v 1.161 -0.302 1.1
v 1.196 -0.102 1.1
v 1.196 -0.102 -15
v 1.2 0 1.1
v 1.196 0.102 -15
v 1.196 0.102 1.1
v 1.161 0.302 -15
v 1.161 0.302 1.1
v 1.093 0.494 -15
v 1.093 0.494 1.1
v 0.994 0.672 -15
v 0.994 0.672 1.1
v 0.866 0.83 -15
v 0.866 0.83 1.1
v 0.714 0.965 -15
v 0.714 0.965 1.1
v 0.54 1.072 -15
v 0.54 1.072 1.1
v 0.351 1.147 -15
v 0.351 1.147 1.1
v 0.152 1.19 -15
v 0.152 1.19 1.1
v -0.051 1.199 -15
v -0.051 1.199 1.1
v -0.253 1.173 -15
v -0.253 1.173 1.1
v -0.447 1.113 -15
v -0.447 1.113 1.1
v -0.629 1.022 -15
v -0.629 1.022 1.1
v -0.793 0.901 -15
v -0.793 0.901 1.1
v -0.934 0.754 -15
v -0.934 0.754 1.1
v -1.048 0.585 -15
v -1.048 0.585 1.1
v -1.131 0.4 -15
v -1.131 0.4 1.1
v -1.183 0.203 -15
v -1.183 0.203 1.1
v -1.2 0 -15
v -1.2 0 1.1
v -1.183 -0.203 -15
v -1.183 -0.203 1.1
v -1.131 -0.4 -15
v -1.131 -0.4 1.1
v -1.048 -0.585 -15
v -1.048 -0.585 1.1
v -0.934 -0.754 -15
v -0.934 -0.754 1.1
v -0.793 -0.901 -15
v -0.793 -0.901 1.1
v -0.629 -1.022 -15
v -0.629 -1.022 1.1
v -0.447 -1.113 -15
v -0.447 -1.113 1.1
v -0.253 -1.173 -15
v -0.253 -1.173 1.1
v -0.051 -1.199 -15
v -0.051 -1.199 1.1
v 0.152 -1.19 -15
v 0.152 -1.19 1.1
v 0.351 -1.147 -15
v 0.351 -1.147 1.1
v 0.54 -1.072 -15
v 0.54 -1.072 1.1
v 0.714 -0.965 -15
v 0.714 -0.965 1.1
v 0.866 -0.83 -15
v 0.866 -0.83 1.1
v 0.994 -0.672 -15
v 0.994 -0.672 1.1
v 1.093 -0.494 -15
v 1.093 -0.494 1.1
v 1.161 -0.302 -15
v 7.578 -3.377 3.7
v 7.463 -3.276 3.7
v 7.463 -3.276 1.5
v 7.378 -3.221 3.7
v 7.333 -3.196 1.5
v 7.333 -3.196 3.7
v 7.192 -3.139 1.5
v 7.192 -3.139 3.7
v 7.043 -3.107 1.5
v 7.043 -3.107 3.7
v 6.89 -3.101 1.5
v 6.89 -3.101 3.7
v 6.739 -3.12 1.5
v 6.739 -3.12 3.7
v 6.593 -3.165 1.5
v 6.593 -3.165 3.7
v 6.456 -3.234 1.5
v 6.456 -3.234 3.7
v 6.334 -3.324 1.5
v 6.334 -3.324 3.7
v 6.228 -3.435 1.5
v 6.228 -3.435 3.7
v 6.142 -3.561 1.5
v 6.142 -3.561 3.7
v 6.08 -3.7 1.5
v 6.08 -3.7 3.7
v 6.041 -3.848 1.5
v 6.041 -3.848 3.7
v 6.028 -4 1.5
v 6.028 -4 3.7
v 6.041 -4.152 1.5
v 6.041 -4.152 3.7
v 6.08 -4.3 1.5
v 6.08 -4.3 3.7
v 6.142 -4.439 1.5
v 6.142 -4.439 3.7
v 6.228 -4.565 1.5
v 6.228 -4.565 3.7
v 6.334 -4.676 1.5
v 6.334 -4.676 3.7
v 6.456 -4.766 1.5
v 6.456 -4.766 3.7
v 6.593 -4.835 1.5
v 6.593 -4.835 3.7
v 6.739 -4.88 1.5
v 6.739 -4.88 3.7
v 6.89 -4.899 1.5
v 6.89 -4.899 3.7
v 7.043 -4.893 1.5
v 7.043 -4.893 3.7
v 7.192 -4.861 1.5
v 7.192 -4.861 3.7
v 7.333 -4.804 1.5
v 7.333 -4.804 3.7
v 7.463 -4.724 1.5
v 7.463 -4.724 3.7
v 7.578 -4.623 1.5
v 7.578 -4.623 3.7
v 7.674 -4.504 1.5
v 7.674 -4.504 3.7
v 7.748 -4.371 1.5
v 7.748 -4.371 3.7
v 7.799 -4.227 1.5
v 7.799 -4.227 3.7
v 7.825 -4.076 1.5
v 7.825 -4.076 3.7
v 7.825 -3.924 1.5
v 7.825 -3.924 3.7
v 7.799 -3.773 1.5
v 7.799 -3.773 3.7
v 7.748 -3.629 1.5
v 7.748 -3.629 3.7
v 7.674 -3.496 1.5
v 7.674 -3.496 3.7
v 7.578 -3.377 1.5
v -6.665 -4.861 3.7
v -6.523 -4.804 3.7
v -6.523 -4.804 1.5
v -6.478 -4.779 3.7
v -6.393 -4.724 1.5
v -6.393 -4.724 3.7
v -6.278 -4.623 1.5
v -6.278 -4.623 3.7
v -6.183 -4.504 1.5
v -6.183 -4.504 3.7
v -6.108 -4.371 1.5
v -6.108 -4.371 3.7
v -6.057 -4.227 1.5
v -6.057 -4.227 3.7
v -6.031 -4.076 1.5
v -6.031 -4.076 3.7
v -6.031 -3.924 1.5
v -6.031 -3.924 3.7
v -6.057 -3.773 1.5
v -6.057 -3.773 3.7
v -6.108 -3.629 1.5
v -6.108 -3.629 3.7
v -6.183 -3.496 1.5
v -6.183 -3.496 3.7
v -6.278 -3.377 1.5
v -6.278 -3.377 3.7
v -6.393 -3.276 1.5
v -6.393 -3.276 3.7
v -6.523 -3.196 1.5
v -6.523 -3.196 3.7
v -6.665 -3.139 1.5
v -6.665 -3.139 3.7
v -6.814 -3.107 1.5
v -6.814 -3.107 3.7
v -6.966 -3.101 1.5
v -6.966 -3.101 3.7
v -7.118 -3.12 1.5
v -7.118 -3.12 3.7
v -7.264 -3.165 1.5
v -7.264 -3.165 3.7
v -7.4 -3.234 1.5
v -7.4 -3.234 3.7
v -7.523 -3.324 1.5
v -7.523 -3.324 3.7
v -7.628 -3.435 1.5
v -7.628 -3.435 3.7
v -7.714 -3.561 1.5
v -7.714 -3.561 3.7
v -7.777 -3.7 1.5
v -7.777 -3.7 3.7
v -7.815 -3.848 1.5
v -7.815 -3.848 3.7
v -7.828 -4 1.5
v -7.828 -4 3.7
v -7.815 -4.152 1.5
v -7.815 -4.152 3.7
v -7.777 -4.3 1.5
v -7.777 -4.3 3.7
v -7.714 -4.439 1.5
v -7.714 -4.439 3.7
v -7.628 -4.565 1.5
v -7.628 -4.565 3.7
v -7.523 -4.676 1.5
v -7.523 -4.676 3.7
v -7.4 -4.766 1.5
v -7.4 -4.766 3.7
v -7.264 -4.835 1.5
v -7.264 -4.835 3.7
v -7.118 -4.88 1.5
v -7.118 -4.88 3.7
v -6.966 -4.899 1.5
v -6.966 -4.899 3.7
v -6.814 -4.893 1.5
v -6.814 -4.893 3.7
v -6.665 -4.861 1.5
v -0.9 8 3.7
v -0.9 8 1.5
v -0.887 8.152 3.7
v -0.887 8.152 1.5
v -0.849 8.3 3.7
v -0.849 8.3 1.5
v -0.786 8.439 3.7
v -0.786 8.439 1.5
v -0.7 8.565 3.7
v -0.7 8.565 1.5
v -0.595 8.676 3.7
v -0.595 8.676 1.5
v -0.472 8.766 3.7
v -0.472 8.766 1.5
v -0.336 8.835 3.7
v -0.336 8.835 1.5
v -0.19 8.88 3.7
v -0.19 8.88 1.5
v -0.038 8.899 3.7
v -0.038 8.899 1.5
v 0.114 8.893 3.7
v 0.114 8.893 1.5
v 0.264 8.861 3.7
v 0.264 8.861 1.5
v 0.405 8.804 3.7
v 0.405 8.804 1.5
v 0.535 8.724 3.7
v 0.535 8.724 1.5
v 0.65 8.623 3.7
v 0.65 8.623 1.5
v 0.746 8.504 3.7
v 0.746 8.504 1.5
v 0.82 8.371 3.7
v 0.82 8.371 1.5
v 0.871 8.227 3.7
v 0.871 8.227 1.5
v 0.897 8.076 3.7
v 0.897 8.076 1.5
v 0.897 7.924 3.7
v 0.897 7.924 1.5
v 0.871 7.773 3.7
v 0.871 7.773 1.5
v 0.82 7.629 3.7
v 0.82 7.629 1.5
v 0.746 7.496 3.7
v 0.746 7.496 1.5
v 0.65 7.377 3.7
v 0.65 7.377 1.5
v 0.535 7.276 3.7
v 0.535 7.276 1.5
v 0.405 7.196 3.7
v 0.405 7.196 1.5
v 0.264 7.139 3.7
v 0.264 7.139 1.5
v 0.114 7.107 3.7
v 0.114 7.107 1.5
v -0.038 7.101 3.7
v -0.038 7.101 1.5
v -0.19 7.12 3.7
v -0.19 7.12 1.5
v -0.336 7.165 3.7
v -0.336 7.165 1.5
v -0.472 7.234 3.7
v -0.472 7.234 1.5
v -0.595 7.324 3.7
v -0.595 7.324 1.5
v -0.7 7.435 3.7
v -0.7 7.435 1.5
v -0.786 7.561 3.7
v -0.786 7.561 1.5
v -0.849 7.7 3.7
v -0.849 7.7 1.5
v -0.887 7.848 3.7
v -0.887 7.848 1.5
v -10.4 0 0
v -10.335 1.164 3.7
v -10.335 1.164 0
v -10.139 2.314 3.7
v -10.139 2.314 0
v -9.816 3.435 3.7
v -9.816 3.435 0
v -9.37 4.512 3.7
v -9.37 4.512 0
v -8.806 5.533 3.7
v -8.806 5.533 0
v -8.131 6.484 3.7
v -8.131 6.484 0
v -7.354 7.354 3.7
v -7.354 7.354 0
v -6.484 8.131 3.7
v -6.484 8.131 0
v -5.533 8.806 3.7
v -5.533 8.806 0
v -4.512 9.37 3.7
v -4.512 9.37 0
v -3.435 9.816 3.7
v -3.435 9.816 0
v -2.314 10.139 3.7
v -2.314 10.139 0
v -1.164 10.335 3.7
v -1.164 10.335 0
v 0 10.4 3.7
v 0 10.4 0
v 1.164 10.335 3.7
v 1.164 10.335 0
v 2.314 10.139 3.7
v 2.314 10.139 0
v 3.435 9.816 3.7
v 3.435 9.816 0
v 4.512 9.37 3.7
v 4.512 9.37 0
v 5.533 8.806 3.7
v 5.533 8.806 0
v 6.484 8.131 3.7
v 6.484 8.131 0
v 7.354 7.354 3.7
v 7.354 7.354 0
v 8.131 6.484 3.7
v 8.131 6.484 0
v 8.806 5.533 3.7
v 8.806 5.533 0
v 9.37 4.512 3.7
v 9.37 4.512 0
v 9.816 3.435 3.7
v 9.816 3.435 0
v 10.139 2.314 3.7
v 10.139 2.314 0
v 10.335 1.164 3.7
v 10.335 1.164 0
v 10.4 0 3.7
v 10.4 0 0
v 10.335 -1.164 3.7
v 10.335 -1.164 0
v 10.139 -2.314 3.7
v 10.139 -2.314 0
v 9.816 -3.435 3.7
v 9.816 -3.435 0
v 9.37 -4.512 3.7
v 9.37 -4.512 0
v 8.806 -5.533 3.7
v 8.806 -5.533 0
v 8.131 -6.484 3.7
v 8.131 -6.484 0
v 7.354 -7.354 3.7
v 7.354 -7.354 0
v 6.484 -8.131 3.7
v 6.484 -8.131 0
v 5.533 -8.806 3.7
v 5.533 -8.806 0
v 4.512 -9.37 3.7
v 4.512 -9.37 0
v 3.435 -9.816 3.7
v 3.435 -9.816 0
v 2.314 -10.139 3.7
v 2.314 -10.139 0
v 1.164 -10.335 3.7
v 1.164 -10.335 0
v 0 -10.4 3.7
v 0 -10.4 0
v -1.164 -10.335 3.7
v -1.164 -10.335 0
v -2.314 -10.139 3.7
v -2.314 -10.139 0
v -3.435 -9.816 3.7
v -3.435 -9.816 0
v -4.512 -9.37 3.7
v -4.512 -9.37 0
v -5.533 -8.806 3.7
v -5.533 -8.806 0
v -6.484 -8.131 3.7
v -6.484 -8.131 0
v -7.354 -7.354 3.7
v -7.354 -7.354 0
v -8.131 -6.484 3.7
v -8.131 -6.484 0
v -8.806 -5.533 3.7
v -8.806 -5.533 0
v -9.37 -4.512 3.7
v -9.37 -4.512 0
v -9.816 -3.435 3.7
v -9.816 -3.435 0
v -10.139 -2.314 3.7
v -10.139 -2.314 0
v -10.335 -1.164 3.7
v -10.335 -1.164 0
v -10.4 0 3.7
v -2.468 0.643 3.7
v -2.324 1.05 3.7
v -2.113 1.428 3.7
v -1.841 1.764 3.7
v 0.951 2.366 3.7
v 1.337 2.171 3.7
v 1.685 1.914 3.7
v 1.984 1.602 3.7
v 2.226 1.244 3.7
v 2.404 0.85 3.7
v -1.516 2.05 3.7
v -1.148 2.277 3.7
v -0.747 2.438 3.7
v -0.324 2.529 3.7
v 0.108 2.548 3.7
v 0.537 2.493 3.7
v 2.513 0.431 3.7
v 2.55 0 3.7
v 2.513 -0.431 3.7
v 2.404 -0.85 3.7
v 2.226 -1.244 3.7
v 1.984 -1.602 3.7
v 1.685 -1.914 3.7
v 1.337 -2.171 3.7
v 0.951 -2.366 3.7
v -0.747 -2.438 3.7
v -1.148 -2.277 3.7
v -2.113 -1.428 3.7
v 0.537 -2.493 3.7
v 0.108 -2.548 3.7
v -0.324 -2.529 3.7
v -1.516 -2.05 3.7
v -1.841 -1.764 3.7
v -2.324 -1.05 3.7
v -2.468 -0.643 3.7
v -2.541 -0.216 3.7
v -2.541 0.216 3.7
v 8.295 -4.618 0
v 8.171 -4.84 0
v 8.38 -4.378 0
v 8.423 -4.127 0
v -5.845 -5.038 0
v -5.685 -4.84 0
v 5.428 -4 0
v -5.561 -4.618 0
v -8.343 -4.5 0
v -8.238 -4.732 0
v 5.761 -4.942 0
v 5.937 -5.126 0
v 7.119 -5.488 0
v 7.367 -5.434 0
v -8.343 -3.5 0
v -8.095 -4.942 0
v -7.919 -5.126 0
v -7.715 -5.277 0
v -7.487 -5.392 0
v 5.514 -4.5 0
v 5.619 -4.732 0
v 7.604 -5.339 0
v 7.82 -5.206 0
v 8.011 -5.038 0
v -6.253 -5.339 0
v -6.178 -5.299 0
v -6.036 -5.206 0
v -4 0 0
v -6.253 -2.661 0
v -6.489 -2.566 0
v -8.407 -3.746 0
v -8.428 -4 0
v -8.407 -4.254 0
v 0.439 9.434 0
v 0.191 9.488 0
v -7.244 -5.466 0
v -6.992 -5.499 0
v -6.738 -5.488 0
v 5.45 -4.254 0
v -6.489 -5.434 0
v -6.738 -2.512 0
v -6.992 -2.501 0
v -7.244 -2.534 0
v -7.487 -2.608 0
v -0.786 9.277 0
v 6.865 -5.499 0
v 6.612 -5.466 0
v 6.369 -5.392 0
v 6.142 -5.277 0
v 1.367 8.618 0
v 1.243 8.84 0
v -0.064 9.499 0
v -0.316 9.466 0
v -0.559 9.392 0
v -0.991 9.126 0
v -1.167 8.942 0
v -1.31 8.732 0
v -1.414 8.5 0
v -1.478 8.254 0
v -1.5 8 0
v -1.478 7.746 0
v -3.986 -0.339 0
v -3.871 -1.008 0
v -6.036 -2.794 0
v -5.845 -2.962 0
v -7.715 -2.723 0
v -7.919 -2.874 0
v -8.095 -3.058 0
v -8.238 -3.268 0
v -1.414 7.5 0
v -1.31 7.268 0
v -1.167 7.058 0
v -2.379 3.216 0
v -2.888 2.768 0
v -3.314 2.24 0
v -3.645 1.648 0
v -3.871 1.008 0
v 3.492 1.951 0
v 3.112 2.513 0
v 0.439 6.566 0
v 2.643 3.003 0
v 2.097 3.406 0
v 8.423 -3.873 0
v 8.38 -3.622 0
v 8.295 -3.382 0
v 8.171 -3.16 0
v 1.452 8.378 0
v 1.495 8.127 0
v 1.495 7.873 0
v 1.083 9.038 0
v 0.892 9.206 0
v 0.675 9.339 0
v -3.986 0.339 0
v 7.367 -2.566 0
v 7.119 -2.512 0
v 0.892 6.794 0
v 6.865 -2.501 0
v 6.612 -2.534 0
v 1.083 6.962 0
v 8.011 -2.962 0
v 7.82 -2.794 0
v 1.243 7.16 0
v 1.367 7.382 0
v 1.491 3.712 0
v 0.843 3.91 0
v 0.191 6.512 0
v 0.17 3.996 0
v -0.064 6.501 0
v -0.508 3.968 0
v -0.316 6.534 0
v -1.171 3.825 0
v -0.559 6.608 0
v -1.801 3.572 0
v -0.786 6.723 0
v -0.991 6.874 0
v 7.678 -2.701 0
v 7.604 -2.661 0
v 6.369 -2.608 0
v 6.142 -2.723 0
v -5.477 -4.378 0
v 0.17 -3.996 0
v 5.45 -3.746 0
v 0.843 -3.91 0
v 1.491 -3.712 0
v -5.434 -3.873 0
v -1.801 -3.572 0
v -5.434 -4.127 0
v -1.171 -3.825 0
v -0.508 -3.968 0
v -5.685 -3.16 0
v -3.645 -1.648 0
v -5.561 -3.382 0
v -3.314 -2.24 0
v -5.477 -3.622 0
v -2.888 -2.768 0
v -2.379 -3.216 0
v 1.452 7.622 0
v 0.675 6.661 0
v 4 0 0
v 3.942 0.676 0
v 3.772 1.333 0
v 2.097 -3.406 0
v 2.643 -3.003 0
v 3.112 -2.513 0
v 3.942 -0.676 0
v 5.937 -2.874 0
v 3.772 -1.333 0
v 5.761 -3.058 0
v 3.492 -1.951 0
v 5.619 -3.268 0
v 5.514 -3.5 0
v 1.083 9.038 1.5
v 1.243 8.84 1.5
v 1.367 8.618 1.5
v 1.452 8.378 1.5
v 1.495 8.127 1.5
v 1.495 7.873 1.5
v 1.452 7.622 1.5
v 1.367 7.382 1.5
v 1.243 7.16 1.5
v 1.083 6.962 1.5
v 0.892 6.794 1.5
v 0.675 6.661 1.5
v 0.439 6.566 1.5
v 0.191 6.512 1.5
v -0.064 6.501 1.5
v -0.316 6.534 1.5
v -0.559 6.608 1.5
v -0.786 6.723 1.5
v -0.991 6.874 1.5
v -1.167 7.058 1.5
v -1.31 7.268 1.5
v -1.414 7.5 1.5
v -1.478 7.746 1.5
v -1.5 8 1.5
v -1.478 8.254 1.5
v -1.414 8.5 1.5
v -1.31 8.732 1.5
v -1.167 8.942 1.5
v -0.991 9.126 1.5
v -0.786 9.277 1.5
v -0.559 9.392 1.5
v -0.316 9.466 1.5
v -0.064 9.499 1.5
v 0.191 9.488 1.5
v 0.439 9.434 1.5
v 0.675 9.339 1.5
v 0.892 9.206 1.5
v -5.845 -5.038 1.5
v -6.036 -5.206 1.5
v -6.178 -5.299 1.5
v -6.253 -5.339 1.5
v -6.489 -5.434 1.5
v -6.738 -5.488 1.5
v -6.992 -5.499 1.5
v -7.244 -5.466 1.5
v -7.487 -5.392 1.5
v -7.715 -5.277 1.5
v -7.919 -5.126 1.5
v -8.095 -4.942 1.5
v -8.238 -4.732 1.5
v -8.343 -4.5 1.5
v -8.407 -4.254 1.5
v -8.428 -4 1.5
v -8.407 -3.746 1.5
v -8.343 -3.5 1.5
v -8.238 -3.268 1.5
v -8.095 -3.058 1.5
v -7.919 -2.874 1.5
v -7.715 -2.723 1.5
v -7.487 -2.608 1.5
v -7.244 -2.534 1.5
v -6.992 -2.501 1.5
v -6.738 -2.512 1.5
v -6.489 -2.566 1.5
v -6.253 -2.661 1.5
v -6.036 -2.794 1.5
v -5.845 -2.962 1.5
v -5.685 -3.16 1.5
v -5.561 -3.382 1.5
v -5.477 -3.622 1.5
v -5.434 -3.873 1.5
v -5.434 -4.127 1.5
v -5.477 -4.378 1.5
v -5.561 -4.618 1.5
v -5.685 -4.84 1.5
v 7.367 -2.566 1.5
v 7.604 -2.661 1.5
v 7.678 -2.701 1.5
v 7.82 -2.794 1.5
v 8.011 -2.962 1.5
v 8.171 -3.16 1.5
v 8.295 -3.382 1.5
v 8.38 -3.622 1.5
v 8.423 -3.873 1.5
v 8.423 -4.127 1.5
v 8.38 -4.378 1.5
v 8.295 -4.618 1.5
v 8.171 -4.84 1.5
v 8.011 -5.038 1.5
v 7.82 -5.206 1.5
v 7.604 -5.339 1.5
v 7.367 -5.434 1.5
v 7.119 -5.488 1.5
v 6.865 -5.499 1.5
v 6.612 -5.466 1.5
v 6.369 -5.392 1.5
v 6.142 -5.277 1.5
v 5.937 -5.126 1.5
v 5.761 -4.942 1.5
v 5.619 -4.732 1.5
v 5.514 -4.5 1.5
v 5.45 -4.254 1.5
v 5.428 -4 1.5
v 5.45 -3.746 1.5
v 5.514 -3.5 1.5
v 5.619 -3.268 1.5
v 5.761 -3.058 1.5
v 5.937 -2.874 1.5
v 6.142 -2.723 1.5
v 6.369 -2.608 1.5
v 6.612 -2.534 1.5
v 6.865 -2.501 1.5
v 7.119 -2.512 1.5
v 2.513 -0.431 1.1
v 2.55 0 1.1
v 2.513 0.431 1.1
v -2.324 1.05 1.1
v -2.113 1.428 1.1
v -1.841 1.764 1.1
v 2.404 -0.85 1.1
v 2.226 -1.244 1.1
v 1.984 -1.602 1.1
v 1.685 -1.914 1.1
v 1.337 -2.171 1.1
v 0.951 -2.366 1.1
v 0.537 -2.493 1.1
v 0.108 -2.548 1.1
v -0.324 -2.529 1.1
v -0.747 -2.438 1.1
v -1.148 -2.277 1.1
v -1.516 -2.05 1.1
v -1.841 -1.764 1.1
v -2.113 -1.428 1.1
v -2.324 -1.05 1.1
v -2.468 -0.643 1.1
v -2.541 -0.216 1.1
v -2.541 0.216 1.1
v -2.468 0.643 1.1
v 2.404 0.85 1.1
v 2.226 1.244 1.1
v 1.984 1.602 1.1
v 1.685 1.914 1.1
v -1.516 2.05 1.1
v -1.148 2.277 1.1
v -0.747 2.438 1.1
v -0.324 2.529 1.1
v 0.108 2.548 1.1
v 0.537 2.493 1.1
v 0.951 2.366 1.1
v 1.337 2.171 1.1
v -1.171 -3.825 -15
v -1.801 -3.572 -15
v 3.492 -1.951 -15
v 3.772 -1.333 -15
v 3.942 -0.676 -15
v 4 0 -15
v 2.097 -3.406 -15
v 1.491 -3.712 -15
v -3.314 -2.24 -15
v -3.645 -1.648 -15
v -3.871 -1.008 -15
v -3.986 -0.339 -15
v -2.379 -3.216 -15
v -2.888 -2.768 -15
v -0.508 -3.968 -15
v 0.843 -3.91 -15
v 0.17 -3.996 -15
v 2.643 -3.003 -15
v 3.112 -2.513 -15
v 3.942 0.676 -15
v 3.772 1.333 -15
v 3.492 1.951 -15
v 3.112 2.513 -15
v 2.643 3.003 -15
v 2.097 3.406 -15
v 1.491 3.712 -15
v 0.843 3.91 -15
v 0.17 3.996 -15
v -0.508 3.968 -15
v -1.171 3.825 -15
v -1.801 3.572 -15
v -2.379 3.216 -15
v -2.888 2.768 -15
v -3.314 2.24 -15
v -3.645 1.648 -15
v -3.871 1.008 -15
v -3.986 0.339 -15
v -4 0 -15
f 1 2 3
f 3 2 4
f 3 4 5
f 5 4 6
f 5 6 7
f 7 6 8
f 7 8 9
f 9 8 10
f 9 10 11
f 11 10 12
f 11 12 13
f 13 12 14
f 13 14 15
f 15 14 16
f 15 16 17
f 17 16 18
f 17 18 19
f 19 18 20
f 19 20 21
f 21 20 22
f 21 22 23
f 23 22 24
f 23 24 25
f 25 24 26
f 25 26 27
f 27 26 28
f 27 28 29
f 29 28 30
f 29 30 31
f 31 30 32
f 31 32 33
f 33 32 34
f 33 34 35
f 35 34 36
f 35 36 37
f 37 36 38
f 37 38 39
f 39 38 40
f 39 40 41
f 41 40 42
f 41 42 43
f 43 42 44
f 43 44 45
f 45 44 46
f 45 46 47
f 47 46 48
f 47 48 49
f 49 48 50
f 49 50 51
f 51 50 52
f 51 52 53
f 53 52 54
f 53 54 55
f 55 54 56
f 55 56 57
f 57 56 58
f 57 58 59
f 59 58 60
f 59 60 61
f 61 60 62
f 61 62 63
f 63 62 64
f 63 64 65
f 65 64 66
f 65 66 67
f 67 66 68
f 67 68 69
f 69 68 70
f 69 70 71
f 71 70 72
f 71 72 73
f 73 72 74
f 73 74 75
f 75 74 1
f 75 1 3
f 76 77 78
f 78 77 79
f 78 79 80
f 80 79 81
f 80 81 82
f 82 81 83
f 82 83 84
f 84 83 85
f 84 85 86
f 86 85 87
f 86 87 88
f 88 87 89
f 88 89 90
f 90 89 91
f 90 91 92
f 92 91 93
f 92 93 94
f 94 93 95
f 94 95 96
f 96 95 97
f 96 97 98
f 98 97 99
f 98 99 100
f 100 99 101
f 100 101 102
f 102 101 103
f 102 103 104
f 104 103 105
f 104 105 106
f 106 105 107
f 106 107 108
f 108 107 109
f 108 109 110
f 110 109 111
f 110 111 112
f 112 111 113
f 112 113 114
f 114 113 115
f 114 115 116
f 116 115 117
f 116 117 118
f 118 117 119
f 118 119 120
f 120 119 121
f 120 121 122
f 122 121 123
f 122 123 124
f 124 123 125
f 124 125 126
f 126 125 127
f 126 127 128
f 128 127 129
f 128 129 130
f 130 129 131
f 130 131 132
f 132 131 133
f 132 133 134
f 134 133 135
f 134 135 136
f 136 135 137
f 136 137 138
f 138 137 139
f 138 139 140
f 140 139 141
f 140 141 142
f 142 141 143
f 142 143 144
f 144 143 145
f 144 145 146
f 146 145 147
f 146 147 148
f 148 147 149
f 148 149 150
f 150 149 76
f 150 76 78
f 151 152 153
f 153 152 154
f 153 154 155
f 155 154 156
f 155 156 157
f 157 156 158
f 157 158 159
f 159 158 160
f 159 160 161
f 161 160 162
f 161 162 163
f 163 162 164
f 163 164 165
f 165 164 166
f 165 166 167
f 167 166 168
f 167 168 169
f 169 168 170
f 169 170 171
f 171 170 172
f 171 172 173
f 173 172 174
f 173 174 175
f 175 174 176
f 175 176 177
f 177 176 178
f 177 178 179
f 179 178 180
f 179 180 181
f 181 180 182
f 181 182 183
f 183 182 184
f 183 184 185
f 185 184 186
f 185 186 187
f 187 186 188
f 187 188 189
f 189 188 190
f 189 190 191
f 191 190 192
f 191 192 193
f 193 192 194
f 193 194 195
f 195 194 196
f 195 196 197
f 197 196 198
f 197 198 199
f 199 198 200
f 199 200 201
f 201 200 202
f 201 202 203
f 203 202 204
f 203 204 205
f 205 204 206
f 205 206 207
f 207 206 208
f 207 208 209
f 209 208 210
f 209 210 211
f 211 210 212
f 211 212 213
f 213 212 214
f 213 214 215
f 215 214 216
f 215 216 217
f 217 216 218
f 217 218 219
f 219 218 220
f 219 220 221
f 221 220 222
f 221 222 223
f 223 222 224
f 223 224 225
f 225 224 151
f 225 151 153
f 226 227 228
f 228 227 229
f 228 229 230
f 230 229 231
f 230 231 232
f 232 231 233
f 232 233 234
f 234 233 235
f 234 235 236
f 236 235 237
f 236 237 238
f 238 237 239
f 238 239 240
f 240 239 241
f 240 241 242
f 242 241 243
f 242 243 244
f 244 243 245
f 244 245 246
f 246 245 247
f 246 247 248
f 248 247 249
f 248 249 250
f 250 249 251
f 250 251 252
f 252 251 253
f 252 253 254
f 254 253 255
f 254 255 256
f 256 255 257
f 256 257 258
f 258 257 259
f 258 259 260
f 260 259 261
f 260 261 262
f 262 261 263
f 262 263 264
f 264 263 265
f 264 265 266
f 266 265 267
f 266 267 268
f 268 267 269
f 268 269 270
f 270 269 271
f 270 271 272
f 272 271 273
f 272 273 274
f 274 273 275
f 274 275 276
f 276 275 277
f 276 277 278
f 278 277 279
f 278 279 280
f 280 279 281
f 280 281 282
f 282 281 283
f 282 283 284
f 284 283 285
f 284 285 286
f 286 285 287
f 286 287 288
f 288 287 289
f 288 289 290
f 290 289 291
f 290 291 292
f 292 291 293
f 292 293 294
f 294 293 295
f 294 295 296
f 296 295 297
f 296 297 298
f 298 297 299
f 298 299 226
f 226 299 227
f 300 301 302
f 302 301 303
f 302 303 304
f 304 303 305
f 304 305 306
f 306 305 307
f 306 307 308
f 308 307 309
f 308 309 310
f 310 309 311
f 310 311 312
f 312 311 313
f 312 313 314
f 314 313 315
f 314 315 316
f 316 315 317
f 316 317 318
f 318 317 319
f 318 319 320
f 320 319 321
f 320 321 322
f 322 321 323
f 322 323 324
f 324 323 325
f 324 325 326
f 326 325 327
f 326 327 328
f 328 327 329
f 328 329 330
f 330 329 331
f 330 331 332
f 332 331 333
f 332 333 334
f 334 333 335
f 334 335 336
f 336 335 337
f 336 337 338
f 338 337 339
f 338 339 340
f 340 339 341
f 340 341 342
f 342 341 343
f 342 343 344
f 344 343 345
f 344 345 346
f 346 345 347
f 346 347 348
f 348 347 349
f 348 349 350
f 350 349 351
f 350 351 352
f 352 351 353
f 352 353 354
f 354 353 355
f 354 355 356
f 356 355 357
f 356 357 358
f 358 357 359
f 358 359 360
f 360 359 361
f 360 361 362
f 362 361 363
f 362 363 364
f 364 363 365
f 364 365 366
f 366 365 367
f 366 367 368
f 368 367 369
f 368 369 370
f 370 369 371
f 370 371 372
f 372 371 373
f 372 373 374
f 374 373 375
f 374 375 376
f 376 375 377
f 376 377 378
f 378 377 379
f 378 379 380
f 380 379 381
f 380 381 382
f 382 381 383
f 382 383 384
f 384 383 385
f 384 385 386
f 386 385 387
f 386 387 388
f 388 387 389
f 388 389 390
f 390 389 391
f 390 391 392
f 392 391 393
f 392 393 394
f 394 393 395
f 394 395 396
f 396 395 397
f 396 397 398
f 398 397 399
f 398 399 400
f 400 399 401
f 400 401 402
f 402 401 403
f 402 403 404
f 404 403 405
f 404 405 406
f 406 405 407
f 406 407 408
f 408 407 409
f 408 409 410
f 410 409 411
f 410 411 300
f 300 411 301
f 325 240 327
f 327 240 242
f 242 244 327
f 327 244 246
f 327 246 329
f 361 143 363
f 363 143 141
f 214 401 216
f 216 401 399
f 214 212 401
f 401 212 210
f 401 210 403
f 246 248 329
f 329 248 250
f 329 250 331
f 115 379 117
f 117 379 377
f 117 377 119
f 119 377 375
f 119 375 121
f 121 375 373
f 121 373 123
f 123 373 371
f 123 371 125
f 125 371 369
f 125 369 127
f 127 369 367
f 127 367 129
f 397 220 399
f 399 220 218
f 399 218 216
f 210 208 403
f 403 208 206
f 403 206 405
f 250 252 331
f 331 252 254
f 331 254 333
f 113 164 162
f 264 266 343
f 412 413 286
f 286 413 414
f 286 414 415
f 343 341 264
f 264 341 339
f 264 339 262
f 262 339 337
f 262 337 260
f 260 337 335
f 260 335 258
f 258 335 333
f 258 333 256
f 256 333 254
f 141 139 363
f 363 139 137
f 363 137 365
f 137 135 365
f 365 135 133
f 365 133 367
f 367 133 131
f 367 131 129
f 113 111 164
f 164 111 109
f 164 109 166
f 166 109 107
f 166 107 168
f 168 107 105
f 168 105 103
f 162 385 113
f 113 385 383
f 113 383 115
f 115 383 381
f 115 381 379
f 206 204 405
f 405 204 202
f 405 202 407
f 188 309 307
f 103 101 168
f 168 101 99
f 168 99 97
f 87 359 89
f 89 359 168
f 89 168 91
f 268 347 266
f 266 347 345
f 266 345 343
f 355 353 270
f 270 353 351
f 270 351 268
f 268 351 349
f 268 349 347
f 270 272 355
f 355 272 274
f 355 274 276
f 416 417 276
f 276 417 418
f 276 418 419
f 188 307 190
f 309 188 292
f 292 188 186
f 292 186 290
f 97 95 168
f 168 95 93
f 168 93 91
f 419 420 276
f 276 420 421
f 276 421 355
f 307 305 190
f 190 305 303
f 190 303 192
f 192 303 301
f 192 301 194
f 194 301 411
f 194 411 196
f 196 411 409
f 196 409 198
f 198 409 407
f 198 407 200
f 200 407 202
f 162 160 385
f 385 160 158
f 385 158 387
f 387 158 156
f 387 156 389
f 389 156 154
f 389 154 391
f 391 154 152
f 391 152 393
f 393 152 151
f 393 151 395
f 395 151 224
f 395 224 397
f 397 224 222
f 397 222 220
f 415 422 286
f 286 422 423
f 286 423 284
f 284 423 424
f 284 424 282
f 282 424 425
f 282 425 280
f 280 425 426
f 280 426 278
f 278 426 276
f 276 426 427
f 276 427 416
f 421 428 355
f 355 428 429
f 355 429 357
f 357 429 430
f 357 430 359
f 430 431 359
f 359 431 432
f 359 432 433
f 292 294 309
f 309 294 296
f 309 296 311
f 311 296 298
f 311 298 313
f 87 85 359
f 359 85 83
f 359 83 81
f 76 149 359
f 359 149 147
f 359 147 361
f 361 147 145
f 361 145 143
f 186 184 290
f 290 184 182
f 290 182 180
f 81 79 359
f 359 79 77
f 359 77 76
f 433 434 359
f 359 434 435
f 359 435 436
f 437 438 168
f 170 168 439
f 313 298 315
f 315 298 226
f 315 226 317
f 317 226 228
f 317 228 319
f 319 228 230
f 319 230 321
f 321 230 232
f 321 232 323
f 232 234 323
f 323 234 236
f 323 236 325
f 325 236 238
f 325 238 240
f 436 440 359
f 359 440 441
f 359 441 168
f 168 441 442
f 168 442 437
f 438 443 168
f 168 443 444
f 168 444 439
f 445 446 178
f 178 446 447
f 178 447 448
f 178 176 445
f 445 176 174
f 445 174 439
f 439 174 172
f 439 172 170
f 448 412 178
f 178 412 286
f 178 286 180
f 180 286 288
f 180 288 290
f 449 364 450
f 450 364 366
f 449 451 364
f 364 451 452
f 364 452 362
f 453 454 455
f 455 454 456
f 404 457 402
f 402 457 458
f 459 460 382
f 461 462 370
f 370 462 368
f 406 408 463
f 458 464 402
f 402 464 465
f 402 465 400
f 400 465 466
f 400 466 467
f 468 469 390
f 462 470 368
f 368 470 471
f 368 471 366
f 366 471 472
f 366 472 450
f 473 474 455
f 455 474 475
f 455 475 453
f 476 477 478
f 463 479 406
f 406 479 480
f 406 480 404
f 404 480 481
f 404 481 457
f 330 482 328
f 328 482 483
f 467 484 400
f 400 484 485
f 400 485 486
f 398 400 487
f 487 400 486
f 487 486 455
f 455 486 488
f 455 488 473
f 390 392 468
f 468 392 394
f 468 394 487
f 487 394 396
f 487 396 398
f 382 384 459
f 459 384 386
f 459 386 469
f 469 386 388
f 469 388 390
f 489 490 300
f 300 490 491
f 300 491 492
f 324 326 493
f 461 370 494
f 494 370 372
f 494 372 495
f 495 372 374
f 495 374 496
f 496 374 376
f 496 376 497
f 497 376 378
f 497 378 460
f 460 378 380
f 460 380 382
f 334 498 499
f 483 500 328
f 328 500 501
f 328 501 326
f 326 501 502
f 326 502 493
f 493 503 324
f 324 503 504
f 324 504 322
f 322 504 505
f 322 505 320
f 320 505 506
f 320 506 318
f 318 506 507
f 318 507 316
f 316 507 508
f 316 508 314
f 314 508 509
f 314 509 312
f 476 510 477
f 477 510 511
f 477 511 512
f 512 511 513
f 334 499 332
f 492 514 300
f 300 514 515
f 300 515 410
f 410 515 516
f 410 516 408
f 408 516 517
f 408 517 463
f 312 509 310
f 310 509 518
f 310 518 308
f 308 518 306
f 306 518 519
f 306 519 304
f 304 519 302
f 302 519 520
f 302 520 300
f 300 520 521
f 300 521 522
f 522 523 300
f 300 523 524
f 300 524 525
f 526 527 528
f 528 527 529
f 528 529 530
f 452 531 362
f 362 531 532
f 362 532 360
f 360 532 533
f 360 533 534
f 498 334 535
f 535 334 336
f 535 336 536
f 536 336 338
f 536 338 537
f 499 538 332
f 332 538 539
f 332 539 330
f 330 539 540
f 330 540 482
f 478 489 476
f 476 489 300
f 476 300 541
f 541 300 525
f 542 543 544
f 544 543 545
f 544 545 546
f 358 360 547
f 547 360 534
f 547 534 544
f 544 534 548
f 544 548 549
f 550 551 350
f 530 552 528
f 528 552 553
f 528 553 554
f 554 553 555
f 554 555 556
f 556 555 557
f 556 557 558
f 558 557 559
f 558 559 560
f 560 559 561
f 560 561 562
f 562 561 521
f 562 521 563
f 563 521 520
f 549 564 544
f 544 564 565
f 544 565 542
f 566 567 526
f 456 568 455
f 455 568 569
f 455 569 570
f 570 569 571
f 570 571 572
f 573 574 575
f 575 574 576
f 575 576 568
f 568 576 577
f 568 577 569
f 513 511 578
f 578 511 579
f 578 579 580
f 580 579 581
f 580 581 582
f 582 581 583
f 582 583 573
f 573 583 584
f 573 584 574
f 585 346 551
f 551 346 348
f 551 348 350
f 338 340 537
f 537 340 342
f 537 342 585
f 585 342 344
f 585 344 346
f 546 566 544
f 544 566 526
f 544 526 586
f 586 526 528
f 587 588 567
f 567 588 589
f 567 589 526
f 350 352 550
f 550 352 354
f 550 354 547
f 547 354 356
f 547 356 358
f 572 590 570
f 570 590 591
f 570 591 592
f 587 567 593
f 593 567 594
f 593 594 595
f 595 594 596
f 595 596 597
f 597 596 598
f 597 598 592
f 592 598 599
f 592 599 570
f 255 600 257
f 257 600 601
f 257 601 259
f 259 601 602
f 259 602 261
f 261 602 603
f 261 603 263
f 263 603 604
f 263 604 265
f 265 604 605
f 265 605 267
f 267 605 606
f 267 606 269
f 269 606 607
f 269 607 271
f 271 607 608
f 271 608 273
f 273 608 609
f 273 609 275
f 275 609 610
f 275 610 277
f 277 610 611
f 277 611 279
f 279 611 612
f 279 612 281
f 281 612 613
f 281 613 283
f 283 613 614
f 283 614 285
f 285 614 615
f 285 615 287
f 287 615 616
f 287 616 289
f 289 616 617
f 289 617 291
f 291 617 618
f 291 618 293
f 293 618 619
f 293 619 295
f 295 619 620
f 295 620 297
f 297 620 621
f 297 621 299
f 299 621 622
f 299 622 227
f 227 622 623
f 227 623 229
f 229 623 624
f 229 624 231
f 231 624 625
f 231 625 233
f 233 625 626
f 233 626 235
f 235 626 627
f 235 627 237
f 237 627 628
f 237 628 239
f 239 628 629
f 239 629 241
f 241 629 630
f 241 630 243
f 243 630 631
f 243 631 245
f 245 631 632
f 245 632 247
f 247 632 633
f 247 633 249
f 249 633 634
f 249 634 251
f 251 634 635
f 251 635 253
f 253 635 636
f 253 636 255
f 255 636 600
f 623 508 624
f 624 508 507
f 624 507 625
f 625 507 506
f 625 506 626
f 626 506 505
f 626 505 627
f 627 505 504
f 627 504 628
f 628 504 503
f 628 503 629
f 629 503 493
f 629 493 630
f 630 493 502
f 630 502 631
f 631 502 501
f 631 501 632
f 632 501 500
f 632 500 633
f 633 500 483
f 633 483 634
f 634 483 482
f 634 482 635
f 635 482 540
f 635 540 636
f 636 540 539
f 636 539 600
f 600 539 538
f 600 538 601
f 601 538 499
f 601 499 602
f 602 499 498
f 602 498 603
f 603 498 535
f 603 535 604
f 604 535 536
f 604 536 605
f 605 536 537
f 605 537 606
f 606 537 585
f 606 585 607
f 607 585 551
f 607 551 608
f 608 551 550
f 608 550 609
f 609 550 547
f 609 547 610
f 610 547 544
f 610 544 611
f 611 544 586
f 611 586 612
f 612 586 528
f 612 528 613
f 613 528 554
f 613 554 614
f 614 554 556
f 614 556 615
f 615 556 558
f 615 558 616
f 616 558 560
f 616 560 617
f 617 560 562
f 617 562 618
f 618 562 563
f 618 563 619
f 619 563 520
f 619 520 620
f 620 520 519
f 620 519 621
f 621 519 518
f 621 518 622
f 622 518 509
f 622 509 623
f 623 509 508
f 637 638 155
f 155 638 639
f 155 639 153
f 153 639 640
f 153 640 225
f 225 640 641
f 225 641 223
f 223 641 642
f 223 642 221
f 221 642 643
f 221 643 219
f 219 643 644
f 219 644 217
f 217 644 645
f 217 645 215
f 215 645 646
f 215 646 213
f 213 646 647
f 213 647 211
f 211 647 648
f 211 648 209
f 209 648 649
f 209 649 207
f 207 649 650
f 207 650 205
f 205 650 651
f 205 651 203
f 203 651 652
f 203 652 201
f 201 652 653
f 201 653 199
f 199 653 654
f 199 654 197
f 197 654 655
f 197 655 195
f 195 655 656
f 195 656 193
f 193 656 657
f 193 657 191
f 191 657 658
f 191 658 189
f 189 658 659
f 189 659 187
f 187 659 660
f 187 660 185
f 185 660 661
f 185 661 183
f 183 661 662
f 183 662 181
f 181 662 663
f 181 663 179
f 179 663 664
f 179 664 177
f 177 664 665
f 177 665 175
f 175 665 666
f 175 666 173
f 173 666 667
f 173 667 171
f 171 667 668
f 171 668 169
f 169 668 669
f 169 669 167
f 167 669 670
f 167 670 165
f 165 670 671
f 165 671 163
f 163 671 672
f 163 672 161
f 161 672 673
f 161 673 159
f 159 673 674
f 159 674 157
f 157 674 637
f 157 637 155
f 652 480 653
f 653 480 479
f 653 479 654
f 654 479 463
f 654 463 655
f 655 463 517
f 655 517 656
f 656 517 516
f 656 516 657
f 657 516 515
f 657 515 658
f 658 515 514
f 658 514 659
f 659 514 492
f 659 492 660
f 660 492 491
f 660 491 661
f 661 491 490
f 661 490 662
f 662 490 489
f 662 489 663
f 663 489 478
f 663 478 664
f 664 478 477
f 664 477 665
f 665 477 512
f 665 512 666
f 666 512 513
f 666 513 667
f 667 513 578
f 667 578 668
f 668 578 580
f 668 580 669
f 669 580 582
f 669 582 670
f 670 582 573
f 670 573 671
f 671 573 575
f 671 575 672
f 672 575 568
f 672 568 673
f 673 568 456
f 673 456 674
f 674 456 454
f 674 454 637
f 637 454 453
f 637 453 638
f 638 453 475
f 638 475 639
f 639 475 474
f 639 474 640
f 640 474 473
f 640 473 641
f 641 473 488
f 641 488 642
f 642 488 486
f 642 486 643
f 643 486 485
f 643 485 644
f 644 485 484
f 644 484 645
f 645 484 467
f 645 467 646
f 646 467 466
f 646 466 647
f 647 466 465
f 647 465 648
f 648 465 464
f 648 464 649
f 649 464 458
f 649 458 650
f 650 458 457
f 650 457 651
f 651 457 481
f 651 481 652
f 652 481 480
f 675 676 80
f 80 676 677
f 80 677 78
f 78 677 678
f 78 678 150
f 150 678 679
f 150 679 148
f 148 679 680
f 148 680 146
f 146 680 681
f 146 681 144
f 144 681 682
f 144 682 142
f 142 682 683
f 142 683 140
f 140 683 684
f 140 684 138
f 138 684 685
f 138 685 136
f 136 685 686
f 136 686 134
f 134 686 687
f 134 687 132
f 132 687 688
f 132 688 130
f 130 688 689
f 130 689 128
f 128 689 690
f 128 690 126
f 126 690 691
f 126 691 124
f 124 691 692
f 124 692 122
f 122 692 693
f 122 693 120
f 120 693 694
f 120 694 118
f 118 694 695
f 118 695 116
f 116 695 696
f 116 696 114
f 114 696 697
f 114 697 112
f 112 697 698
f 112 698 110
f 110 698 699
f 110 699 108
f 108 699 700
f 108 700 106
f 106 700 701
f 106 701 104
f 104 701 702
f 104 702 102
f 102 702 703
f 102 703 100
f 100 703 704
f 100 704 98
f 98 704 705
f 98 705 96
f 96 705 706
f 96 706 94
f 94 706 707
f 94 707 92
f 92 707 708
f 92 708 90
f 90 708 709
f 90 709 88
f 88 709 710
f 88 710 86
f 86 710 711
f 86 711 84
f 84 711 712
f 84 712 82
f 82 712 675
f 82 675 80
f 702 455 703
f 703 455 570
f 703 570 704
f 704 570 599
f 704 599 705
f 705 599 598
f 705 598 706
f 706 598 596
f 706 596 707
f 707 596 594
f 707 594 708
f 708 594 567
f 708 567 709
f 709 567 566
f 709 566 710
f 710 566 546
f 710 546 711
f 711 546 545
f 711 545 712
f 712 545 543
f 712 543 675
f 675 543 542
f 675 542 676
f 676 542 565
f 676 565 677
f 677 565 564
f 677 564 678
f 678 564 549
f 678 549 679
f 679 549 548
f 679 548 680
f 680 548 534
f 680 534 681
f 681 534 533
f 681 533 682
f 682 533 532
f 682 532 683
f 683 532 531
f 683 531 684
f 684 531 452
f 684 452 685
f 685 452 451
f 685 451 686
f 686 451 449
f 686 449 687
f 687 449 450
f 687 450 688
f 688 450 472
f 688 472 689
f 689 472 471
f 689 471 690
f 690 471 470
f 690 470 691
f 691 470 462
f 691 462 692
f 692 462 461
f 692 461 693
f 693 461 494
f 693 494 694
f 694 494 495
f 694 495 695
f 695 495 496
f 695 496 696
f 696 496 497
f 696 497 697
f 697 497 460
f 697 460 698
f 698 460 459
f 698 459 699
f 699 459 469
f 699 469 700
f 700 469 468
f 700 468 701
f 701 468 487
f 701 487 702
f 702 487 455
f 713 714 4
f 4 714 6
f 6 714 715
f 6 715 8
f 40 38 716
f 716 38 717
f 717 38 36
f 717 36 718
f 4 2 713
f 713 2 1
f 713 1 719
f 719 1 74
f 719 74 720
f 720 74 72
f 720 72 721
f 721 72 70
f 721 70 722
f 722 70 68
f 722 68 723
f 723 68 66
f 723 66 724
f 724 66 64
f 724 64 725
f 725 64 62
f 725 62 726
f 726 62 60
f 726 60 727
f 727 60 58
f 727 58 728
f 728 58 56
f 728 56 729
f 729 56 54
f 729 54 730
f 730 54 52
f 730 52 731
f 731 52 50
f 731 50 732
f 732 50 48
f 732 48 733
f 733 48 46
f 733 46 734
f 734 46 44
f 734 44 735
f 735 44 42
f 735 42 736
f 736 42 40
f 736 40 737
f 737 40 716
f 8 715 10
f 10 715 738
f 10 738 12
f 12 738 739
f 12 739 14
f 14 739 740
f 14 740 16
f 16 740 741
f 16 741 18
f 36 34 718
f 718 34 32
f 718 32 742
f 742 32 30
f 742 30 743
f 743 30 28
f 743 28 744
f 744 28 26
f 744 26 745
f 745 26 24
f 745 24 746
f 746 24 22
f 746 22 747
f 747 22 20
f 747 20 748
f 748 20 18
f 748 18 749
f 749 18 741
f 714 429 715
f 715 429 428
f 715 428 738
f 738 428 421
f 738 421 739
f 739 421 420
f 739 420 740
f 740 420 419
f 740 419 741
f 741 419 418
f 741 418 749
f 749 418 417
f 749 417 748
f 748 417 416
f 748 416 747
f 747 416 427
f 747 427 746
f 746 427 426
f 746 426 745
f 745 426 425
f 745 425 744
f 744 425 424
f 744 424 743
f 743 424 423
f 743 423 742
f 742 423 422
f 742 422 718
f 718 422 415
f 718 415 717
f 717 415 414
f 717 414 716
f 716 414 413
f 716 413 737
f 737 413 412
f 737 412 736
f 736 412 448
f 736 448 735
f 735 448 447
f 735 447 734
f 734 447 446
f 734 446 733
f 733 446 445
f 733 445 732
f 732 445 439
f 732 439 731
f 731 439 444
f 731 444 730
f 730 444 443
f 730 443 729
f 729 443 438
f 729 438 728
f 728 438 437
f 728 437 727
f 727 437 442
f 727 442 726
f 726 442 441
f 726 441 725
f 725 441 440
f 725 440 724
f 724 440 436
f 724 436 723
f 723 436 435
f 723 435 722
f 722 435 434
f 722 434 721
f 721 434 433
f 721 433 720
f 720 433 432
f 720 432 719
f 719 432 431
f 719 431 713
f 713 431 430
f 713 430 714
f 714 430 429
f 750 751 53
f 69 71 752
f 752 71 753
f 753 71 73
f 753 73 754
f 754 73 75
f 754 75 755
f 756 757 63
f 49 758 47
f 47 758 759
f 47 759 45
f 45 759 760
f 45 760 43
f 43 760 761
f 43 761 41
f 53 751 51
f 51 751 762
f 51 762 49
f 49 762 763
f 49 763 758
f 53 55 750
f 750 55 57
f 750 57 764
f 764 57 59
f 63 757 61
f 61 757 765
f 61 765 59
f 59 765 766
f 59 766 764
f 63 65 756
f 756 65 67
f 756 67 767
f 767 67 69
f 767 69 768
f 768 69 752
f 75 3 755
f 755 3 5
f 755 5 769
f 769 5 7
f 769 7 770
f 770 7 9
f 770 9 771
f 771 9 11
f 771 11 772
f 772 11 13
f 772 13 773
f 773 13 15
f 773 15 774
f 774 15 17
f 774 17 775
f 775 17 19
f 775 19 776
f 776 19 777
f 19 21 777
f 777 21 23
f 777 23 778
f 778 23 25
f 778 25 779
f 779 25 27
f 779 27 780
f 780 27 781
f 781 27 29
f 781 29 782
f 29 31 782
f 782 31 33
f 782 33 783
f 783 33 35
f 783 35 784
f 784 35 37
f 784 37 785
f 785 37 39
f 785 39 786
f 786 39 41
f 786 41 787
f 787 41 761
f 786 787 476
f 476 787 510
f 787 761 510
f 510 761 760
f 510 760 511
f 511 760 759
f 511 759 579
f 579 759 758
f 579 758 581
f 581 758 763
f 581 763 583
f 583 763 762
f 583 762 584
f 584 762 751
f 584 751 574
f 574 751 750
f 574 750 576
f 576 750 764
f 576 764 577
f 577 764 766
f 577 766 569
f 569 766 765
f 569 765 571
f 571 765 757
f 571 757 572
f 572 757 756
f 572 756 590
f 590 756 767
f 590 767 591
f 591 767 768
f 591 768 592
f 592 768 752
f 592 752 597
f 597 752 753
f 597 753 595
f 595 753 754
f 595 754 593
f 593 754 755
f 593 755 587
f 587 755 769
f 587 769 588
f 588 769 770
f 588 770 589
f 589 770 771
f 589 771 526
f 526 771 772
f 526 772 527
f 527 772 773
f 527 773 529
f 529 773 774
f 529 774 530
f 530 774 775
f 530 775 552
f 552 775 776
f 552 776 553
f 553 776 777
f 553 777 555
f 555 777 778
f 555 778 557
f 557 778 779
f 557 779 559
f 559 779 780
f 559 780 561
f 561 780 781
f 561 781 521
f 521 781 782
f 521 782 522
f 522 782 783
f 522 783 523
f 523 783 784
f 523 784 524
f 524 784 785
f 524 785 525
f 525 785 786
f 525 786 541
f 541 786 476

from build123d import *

# Parameters (mm, degrees)
SKETCH_1_R               = 10.4
EXTRUDE_1_DEPTH          = 3.7
SKETCH_2_R               = 0.9
CUT_EXTRUDE_1_DEPTH      = 16.166080575
SKETCH_2_3_R             = 1.5
CUT_EXTRUDE_2_DEPTH      = 1.5
PATTERN_CIRCULAR_1_COUNT = 3
SKETCH_3_R               = 1.2
CUT_EXTRUDE_3_DEPTH      = 16.166080575
SKETCH_4_R               = 2.55
CUT_EXTRUDE_4_DEPTH      = 2.6
EXTRUDE_START            = 15
SKETCH_5_R               = 4
SKETCH_5_R_2             = 1.2
EXTRUDE_2_DEPTH          = 15


with BuildPart() as part:
    # 草图1 → 凸台-拉伸1 (new body)
    with BuildSketch(Plane.XY):
        Circle(SKETCH_1_R)
    extrude(amount=EXTRUDE_1_DEPTH)

    # 草图2 → 切除-拉伸1 (cut, through all)
    with BuildSketch(Plane(origin=(0, 0, 0), x_dir=(-1, 0, 0), z_dir=(0, 0, -1))):
        with Locations((0, 8)):
            Circle(SKETCH_2_R)
    cut_extrude_1 = extrude(amount=-CUT_EXTRUDE_1_DEPTH, mode=Mode.SUBTRACT)

    # 草图2<3> → 切除-拉伸2 (cut)
    with BuildSketch(Plane(origin=(0, 0, 0), x_dir=(-1, 0, 0), z_dir=(0, 0, -1))):
        with Locations((0, 8)):
            Circle(SKETCH_2_3_R)
    cut_extrude_2 = extrude(amount=-CUT_EXTRUDE_2_DEPTH, mode=Mode.SUBTRACT)

    # 阵列(圆周)1: 切除-拉伸1, 切除-拉伸2 ×3 about axis
    pattern_circular_1_axis = Axis((0, 0, 3.7), (0, 0, -1))
    add([cut_extrude_1.rotate(pattern_circular_1_axis, i * 360 / PATTERN_CIRCULAR_1_COUNT) for i in range(1, PATTERN_CIRCULAR_1_COUNT)], mode=Mode.SUBTRACT)
    add([cut_extrude_2.rotate(pattern_circular_1_axis, i * 360 / PATTERN_CIRCULAR_1_COUNT) for i in range(1, PATTERN_CIRCULAR_1_COUNT)], mode=Mode.SUBTRACT)

    # 草图3 → 切除-拉伸3 (cut, through all)
    with BuildSketch(Plane(origin=(0, 0, 0), x_dir=(-1, 0, 0), z_dir=(0, 0, -1))):
        Circle(SKETCH_3_R)
    extrude(amount=-CUT_EXTRUDE_3_DEPTH, mode=Mode.SUBTRACT)

    # 草图4 → 切除-拉伸4 (cut)
    with BuildSketch(Plane.XY.offset(3.7)):
        Circle(SKETCH_4_R)
    extrude(amount=-CUT_EXTRUDE_4_DEPTH, mode=Mode.SUBTRACT)

    # 草图5 → 凸台-拉伸2 (add)
    with BuildSketch(Plane(origin=(0, 0, 0), x_dir=(-1, 0, 0), z_dir=(0, 0, -1)).offset(EXTRUDE_START)):
        Circle(SKETCH_5_R)
        Circle(SKETCH_5_R_2, mode=Mode.SUBTRACT)
    extrude(amount=-EXTRUDE_2_DEPTH)


solid = part.part
